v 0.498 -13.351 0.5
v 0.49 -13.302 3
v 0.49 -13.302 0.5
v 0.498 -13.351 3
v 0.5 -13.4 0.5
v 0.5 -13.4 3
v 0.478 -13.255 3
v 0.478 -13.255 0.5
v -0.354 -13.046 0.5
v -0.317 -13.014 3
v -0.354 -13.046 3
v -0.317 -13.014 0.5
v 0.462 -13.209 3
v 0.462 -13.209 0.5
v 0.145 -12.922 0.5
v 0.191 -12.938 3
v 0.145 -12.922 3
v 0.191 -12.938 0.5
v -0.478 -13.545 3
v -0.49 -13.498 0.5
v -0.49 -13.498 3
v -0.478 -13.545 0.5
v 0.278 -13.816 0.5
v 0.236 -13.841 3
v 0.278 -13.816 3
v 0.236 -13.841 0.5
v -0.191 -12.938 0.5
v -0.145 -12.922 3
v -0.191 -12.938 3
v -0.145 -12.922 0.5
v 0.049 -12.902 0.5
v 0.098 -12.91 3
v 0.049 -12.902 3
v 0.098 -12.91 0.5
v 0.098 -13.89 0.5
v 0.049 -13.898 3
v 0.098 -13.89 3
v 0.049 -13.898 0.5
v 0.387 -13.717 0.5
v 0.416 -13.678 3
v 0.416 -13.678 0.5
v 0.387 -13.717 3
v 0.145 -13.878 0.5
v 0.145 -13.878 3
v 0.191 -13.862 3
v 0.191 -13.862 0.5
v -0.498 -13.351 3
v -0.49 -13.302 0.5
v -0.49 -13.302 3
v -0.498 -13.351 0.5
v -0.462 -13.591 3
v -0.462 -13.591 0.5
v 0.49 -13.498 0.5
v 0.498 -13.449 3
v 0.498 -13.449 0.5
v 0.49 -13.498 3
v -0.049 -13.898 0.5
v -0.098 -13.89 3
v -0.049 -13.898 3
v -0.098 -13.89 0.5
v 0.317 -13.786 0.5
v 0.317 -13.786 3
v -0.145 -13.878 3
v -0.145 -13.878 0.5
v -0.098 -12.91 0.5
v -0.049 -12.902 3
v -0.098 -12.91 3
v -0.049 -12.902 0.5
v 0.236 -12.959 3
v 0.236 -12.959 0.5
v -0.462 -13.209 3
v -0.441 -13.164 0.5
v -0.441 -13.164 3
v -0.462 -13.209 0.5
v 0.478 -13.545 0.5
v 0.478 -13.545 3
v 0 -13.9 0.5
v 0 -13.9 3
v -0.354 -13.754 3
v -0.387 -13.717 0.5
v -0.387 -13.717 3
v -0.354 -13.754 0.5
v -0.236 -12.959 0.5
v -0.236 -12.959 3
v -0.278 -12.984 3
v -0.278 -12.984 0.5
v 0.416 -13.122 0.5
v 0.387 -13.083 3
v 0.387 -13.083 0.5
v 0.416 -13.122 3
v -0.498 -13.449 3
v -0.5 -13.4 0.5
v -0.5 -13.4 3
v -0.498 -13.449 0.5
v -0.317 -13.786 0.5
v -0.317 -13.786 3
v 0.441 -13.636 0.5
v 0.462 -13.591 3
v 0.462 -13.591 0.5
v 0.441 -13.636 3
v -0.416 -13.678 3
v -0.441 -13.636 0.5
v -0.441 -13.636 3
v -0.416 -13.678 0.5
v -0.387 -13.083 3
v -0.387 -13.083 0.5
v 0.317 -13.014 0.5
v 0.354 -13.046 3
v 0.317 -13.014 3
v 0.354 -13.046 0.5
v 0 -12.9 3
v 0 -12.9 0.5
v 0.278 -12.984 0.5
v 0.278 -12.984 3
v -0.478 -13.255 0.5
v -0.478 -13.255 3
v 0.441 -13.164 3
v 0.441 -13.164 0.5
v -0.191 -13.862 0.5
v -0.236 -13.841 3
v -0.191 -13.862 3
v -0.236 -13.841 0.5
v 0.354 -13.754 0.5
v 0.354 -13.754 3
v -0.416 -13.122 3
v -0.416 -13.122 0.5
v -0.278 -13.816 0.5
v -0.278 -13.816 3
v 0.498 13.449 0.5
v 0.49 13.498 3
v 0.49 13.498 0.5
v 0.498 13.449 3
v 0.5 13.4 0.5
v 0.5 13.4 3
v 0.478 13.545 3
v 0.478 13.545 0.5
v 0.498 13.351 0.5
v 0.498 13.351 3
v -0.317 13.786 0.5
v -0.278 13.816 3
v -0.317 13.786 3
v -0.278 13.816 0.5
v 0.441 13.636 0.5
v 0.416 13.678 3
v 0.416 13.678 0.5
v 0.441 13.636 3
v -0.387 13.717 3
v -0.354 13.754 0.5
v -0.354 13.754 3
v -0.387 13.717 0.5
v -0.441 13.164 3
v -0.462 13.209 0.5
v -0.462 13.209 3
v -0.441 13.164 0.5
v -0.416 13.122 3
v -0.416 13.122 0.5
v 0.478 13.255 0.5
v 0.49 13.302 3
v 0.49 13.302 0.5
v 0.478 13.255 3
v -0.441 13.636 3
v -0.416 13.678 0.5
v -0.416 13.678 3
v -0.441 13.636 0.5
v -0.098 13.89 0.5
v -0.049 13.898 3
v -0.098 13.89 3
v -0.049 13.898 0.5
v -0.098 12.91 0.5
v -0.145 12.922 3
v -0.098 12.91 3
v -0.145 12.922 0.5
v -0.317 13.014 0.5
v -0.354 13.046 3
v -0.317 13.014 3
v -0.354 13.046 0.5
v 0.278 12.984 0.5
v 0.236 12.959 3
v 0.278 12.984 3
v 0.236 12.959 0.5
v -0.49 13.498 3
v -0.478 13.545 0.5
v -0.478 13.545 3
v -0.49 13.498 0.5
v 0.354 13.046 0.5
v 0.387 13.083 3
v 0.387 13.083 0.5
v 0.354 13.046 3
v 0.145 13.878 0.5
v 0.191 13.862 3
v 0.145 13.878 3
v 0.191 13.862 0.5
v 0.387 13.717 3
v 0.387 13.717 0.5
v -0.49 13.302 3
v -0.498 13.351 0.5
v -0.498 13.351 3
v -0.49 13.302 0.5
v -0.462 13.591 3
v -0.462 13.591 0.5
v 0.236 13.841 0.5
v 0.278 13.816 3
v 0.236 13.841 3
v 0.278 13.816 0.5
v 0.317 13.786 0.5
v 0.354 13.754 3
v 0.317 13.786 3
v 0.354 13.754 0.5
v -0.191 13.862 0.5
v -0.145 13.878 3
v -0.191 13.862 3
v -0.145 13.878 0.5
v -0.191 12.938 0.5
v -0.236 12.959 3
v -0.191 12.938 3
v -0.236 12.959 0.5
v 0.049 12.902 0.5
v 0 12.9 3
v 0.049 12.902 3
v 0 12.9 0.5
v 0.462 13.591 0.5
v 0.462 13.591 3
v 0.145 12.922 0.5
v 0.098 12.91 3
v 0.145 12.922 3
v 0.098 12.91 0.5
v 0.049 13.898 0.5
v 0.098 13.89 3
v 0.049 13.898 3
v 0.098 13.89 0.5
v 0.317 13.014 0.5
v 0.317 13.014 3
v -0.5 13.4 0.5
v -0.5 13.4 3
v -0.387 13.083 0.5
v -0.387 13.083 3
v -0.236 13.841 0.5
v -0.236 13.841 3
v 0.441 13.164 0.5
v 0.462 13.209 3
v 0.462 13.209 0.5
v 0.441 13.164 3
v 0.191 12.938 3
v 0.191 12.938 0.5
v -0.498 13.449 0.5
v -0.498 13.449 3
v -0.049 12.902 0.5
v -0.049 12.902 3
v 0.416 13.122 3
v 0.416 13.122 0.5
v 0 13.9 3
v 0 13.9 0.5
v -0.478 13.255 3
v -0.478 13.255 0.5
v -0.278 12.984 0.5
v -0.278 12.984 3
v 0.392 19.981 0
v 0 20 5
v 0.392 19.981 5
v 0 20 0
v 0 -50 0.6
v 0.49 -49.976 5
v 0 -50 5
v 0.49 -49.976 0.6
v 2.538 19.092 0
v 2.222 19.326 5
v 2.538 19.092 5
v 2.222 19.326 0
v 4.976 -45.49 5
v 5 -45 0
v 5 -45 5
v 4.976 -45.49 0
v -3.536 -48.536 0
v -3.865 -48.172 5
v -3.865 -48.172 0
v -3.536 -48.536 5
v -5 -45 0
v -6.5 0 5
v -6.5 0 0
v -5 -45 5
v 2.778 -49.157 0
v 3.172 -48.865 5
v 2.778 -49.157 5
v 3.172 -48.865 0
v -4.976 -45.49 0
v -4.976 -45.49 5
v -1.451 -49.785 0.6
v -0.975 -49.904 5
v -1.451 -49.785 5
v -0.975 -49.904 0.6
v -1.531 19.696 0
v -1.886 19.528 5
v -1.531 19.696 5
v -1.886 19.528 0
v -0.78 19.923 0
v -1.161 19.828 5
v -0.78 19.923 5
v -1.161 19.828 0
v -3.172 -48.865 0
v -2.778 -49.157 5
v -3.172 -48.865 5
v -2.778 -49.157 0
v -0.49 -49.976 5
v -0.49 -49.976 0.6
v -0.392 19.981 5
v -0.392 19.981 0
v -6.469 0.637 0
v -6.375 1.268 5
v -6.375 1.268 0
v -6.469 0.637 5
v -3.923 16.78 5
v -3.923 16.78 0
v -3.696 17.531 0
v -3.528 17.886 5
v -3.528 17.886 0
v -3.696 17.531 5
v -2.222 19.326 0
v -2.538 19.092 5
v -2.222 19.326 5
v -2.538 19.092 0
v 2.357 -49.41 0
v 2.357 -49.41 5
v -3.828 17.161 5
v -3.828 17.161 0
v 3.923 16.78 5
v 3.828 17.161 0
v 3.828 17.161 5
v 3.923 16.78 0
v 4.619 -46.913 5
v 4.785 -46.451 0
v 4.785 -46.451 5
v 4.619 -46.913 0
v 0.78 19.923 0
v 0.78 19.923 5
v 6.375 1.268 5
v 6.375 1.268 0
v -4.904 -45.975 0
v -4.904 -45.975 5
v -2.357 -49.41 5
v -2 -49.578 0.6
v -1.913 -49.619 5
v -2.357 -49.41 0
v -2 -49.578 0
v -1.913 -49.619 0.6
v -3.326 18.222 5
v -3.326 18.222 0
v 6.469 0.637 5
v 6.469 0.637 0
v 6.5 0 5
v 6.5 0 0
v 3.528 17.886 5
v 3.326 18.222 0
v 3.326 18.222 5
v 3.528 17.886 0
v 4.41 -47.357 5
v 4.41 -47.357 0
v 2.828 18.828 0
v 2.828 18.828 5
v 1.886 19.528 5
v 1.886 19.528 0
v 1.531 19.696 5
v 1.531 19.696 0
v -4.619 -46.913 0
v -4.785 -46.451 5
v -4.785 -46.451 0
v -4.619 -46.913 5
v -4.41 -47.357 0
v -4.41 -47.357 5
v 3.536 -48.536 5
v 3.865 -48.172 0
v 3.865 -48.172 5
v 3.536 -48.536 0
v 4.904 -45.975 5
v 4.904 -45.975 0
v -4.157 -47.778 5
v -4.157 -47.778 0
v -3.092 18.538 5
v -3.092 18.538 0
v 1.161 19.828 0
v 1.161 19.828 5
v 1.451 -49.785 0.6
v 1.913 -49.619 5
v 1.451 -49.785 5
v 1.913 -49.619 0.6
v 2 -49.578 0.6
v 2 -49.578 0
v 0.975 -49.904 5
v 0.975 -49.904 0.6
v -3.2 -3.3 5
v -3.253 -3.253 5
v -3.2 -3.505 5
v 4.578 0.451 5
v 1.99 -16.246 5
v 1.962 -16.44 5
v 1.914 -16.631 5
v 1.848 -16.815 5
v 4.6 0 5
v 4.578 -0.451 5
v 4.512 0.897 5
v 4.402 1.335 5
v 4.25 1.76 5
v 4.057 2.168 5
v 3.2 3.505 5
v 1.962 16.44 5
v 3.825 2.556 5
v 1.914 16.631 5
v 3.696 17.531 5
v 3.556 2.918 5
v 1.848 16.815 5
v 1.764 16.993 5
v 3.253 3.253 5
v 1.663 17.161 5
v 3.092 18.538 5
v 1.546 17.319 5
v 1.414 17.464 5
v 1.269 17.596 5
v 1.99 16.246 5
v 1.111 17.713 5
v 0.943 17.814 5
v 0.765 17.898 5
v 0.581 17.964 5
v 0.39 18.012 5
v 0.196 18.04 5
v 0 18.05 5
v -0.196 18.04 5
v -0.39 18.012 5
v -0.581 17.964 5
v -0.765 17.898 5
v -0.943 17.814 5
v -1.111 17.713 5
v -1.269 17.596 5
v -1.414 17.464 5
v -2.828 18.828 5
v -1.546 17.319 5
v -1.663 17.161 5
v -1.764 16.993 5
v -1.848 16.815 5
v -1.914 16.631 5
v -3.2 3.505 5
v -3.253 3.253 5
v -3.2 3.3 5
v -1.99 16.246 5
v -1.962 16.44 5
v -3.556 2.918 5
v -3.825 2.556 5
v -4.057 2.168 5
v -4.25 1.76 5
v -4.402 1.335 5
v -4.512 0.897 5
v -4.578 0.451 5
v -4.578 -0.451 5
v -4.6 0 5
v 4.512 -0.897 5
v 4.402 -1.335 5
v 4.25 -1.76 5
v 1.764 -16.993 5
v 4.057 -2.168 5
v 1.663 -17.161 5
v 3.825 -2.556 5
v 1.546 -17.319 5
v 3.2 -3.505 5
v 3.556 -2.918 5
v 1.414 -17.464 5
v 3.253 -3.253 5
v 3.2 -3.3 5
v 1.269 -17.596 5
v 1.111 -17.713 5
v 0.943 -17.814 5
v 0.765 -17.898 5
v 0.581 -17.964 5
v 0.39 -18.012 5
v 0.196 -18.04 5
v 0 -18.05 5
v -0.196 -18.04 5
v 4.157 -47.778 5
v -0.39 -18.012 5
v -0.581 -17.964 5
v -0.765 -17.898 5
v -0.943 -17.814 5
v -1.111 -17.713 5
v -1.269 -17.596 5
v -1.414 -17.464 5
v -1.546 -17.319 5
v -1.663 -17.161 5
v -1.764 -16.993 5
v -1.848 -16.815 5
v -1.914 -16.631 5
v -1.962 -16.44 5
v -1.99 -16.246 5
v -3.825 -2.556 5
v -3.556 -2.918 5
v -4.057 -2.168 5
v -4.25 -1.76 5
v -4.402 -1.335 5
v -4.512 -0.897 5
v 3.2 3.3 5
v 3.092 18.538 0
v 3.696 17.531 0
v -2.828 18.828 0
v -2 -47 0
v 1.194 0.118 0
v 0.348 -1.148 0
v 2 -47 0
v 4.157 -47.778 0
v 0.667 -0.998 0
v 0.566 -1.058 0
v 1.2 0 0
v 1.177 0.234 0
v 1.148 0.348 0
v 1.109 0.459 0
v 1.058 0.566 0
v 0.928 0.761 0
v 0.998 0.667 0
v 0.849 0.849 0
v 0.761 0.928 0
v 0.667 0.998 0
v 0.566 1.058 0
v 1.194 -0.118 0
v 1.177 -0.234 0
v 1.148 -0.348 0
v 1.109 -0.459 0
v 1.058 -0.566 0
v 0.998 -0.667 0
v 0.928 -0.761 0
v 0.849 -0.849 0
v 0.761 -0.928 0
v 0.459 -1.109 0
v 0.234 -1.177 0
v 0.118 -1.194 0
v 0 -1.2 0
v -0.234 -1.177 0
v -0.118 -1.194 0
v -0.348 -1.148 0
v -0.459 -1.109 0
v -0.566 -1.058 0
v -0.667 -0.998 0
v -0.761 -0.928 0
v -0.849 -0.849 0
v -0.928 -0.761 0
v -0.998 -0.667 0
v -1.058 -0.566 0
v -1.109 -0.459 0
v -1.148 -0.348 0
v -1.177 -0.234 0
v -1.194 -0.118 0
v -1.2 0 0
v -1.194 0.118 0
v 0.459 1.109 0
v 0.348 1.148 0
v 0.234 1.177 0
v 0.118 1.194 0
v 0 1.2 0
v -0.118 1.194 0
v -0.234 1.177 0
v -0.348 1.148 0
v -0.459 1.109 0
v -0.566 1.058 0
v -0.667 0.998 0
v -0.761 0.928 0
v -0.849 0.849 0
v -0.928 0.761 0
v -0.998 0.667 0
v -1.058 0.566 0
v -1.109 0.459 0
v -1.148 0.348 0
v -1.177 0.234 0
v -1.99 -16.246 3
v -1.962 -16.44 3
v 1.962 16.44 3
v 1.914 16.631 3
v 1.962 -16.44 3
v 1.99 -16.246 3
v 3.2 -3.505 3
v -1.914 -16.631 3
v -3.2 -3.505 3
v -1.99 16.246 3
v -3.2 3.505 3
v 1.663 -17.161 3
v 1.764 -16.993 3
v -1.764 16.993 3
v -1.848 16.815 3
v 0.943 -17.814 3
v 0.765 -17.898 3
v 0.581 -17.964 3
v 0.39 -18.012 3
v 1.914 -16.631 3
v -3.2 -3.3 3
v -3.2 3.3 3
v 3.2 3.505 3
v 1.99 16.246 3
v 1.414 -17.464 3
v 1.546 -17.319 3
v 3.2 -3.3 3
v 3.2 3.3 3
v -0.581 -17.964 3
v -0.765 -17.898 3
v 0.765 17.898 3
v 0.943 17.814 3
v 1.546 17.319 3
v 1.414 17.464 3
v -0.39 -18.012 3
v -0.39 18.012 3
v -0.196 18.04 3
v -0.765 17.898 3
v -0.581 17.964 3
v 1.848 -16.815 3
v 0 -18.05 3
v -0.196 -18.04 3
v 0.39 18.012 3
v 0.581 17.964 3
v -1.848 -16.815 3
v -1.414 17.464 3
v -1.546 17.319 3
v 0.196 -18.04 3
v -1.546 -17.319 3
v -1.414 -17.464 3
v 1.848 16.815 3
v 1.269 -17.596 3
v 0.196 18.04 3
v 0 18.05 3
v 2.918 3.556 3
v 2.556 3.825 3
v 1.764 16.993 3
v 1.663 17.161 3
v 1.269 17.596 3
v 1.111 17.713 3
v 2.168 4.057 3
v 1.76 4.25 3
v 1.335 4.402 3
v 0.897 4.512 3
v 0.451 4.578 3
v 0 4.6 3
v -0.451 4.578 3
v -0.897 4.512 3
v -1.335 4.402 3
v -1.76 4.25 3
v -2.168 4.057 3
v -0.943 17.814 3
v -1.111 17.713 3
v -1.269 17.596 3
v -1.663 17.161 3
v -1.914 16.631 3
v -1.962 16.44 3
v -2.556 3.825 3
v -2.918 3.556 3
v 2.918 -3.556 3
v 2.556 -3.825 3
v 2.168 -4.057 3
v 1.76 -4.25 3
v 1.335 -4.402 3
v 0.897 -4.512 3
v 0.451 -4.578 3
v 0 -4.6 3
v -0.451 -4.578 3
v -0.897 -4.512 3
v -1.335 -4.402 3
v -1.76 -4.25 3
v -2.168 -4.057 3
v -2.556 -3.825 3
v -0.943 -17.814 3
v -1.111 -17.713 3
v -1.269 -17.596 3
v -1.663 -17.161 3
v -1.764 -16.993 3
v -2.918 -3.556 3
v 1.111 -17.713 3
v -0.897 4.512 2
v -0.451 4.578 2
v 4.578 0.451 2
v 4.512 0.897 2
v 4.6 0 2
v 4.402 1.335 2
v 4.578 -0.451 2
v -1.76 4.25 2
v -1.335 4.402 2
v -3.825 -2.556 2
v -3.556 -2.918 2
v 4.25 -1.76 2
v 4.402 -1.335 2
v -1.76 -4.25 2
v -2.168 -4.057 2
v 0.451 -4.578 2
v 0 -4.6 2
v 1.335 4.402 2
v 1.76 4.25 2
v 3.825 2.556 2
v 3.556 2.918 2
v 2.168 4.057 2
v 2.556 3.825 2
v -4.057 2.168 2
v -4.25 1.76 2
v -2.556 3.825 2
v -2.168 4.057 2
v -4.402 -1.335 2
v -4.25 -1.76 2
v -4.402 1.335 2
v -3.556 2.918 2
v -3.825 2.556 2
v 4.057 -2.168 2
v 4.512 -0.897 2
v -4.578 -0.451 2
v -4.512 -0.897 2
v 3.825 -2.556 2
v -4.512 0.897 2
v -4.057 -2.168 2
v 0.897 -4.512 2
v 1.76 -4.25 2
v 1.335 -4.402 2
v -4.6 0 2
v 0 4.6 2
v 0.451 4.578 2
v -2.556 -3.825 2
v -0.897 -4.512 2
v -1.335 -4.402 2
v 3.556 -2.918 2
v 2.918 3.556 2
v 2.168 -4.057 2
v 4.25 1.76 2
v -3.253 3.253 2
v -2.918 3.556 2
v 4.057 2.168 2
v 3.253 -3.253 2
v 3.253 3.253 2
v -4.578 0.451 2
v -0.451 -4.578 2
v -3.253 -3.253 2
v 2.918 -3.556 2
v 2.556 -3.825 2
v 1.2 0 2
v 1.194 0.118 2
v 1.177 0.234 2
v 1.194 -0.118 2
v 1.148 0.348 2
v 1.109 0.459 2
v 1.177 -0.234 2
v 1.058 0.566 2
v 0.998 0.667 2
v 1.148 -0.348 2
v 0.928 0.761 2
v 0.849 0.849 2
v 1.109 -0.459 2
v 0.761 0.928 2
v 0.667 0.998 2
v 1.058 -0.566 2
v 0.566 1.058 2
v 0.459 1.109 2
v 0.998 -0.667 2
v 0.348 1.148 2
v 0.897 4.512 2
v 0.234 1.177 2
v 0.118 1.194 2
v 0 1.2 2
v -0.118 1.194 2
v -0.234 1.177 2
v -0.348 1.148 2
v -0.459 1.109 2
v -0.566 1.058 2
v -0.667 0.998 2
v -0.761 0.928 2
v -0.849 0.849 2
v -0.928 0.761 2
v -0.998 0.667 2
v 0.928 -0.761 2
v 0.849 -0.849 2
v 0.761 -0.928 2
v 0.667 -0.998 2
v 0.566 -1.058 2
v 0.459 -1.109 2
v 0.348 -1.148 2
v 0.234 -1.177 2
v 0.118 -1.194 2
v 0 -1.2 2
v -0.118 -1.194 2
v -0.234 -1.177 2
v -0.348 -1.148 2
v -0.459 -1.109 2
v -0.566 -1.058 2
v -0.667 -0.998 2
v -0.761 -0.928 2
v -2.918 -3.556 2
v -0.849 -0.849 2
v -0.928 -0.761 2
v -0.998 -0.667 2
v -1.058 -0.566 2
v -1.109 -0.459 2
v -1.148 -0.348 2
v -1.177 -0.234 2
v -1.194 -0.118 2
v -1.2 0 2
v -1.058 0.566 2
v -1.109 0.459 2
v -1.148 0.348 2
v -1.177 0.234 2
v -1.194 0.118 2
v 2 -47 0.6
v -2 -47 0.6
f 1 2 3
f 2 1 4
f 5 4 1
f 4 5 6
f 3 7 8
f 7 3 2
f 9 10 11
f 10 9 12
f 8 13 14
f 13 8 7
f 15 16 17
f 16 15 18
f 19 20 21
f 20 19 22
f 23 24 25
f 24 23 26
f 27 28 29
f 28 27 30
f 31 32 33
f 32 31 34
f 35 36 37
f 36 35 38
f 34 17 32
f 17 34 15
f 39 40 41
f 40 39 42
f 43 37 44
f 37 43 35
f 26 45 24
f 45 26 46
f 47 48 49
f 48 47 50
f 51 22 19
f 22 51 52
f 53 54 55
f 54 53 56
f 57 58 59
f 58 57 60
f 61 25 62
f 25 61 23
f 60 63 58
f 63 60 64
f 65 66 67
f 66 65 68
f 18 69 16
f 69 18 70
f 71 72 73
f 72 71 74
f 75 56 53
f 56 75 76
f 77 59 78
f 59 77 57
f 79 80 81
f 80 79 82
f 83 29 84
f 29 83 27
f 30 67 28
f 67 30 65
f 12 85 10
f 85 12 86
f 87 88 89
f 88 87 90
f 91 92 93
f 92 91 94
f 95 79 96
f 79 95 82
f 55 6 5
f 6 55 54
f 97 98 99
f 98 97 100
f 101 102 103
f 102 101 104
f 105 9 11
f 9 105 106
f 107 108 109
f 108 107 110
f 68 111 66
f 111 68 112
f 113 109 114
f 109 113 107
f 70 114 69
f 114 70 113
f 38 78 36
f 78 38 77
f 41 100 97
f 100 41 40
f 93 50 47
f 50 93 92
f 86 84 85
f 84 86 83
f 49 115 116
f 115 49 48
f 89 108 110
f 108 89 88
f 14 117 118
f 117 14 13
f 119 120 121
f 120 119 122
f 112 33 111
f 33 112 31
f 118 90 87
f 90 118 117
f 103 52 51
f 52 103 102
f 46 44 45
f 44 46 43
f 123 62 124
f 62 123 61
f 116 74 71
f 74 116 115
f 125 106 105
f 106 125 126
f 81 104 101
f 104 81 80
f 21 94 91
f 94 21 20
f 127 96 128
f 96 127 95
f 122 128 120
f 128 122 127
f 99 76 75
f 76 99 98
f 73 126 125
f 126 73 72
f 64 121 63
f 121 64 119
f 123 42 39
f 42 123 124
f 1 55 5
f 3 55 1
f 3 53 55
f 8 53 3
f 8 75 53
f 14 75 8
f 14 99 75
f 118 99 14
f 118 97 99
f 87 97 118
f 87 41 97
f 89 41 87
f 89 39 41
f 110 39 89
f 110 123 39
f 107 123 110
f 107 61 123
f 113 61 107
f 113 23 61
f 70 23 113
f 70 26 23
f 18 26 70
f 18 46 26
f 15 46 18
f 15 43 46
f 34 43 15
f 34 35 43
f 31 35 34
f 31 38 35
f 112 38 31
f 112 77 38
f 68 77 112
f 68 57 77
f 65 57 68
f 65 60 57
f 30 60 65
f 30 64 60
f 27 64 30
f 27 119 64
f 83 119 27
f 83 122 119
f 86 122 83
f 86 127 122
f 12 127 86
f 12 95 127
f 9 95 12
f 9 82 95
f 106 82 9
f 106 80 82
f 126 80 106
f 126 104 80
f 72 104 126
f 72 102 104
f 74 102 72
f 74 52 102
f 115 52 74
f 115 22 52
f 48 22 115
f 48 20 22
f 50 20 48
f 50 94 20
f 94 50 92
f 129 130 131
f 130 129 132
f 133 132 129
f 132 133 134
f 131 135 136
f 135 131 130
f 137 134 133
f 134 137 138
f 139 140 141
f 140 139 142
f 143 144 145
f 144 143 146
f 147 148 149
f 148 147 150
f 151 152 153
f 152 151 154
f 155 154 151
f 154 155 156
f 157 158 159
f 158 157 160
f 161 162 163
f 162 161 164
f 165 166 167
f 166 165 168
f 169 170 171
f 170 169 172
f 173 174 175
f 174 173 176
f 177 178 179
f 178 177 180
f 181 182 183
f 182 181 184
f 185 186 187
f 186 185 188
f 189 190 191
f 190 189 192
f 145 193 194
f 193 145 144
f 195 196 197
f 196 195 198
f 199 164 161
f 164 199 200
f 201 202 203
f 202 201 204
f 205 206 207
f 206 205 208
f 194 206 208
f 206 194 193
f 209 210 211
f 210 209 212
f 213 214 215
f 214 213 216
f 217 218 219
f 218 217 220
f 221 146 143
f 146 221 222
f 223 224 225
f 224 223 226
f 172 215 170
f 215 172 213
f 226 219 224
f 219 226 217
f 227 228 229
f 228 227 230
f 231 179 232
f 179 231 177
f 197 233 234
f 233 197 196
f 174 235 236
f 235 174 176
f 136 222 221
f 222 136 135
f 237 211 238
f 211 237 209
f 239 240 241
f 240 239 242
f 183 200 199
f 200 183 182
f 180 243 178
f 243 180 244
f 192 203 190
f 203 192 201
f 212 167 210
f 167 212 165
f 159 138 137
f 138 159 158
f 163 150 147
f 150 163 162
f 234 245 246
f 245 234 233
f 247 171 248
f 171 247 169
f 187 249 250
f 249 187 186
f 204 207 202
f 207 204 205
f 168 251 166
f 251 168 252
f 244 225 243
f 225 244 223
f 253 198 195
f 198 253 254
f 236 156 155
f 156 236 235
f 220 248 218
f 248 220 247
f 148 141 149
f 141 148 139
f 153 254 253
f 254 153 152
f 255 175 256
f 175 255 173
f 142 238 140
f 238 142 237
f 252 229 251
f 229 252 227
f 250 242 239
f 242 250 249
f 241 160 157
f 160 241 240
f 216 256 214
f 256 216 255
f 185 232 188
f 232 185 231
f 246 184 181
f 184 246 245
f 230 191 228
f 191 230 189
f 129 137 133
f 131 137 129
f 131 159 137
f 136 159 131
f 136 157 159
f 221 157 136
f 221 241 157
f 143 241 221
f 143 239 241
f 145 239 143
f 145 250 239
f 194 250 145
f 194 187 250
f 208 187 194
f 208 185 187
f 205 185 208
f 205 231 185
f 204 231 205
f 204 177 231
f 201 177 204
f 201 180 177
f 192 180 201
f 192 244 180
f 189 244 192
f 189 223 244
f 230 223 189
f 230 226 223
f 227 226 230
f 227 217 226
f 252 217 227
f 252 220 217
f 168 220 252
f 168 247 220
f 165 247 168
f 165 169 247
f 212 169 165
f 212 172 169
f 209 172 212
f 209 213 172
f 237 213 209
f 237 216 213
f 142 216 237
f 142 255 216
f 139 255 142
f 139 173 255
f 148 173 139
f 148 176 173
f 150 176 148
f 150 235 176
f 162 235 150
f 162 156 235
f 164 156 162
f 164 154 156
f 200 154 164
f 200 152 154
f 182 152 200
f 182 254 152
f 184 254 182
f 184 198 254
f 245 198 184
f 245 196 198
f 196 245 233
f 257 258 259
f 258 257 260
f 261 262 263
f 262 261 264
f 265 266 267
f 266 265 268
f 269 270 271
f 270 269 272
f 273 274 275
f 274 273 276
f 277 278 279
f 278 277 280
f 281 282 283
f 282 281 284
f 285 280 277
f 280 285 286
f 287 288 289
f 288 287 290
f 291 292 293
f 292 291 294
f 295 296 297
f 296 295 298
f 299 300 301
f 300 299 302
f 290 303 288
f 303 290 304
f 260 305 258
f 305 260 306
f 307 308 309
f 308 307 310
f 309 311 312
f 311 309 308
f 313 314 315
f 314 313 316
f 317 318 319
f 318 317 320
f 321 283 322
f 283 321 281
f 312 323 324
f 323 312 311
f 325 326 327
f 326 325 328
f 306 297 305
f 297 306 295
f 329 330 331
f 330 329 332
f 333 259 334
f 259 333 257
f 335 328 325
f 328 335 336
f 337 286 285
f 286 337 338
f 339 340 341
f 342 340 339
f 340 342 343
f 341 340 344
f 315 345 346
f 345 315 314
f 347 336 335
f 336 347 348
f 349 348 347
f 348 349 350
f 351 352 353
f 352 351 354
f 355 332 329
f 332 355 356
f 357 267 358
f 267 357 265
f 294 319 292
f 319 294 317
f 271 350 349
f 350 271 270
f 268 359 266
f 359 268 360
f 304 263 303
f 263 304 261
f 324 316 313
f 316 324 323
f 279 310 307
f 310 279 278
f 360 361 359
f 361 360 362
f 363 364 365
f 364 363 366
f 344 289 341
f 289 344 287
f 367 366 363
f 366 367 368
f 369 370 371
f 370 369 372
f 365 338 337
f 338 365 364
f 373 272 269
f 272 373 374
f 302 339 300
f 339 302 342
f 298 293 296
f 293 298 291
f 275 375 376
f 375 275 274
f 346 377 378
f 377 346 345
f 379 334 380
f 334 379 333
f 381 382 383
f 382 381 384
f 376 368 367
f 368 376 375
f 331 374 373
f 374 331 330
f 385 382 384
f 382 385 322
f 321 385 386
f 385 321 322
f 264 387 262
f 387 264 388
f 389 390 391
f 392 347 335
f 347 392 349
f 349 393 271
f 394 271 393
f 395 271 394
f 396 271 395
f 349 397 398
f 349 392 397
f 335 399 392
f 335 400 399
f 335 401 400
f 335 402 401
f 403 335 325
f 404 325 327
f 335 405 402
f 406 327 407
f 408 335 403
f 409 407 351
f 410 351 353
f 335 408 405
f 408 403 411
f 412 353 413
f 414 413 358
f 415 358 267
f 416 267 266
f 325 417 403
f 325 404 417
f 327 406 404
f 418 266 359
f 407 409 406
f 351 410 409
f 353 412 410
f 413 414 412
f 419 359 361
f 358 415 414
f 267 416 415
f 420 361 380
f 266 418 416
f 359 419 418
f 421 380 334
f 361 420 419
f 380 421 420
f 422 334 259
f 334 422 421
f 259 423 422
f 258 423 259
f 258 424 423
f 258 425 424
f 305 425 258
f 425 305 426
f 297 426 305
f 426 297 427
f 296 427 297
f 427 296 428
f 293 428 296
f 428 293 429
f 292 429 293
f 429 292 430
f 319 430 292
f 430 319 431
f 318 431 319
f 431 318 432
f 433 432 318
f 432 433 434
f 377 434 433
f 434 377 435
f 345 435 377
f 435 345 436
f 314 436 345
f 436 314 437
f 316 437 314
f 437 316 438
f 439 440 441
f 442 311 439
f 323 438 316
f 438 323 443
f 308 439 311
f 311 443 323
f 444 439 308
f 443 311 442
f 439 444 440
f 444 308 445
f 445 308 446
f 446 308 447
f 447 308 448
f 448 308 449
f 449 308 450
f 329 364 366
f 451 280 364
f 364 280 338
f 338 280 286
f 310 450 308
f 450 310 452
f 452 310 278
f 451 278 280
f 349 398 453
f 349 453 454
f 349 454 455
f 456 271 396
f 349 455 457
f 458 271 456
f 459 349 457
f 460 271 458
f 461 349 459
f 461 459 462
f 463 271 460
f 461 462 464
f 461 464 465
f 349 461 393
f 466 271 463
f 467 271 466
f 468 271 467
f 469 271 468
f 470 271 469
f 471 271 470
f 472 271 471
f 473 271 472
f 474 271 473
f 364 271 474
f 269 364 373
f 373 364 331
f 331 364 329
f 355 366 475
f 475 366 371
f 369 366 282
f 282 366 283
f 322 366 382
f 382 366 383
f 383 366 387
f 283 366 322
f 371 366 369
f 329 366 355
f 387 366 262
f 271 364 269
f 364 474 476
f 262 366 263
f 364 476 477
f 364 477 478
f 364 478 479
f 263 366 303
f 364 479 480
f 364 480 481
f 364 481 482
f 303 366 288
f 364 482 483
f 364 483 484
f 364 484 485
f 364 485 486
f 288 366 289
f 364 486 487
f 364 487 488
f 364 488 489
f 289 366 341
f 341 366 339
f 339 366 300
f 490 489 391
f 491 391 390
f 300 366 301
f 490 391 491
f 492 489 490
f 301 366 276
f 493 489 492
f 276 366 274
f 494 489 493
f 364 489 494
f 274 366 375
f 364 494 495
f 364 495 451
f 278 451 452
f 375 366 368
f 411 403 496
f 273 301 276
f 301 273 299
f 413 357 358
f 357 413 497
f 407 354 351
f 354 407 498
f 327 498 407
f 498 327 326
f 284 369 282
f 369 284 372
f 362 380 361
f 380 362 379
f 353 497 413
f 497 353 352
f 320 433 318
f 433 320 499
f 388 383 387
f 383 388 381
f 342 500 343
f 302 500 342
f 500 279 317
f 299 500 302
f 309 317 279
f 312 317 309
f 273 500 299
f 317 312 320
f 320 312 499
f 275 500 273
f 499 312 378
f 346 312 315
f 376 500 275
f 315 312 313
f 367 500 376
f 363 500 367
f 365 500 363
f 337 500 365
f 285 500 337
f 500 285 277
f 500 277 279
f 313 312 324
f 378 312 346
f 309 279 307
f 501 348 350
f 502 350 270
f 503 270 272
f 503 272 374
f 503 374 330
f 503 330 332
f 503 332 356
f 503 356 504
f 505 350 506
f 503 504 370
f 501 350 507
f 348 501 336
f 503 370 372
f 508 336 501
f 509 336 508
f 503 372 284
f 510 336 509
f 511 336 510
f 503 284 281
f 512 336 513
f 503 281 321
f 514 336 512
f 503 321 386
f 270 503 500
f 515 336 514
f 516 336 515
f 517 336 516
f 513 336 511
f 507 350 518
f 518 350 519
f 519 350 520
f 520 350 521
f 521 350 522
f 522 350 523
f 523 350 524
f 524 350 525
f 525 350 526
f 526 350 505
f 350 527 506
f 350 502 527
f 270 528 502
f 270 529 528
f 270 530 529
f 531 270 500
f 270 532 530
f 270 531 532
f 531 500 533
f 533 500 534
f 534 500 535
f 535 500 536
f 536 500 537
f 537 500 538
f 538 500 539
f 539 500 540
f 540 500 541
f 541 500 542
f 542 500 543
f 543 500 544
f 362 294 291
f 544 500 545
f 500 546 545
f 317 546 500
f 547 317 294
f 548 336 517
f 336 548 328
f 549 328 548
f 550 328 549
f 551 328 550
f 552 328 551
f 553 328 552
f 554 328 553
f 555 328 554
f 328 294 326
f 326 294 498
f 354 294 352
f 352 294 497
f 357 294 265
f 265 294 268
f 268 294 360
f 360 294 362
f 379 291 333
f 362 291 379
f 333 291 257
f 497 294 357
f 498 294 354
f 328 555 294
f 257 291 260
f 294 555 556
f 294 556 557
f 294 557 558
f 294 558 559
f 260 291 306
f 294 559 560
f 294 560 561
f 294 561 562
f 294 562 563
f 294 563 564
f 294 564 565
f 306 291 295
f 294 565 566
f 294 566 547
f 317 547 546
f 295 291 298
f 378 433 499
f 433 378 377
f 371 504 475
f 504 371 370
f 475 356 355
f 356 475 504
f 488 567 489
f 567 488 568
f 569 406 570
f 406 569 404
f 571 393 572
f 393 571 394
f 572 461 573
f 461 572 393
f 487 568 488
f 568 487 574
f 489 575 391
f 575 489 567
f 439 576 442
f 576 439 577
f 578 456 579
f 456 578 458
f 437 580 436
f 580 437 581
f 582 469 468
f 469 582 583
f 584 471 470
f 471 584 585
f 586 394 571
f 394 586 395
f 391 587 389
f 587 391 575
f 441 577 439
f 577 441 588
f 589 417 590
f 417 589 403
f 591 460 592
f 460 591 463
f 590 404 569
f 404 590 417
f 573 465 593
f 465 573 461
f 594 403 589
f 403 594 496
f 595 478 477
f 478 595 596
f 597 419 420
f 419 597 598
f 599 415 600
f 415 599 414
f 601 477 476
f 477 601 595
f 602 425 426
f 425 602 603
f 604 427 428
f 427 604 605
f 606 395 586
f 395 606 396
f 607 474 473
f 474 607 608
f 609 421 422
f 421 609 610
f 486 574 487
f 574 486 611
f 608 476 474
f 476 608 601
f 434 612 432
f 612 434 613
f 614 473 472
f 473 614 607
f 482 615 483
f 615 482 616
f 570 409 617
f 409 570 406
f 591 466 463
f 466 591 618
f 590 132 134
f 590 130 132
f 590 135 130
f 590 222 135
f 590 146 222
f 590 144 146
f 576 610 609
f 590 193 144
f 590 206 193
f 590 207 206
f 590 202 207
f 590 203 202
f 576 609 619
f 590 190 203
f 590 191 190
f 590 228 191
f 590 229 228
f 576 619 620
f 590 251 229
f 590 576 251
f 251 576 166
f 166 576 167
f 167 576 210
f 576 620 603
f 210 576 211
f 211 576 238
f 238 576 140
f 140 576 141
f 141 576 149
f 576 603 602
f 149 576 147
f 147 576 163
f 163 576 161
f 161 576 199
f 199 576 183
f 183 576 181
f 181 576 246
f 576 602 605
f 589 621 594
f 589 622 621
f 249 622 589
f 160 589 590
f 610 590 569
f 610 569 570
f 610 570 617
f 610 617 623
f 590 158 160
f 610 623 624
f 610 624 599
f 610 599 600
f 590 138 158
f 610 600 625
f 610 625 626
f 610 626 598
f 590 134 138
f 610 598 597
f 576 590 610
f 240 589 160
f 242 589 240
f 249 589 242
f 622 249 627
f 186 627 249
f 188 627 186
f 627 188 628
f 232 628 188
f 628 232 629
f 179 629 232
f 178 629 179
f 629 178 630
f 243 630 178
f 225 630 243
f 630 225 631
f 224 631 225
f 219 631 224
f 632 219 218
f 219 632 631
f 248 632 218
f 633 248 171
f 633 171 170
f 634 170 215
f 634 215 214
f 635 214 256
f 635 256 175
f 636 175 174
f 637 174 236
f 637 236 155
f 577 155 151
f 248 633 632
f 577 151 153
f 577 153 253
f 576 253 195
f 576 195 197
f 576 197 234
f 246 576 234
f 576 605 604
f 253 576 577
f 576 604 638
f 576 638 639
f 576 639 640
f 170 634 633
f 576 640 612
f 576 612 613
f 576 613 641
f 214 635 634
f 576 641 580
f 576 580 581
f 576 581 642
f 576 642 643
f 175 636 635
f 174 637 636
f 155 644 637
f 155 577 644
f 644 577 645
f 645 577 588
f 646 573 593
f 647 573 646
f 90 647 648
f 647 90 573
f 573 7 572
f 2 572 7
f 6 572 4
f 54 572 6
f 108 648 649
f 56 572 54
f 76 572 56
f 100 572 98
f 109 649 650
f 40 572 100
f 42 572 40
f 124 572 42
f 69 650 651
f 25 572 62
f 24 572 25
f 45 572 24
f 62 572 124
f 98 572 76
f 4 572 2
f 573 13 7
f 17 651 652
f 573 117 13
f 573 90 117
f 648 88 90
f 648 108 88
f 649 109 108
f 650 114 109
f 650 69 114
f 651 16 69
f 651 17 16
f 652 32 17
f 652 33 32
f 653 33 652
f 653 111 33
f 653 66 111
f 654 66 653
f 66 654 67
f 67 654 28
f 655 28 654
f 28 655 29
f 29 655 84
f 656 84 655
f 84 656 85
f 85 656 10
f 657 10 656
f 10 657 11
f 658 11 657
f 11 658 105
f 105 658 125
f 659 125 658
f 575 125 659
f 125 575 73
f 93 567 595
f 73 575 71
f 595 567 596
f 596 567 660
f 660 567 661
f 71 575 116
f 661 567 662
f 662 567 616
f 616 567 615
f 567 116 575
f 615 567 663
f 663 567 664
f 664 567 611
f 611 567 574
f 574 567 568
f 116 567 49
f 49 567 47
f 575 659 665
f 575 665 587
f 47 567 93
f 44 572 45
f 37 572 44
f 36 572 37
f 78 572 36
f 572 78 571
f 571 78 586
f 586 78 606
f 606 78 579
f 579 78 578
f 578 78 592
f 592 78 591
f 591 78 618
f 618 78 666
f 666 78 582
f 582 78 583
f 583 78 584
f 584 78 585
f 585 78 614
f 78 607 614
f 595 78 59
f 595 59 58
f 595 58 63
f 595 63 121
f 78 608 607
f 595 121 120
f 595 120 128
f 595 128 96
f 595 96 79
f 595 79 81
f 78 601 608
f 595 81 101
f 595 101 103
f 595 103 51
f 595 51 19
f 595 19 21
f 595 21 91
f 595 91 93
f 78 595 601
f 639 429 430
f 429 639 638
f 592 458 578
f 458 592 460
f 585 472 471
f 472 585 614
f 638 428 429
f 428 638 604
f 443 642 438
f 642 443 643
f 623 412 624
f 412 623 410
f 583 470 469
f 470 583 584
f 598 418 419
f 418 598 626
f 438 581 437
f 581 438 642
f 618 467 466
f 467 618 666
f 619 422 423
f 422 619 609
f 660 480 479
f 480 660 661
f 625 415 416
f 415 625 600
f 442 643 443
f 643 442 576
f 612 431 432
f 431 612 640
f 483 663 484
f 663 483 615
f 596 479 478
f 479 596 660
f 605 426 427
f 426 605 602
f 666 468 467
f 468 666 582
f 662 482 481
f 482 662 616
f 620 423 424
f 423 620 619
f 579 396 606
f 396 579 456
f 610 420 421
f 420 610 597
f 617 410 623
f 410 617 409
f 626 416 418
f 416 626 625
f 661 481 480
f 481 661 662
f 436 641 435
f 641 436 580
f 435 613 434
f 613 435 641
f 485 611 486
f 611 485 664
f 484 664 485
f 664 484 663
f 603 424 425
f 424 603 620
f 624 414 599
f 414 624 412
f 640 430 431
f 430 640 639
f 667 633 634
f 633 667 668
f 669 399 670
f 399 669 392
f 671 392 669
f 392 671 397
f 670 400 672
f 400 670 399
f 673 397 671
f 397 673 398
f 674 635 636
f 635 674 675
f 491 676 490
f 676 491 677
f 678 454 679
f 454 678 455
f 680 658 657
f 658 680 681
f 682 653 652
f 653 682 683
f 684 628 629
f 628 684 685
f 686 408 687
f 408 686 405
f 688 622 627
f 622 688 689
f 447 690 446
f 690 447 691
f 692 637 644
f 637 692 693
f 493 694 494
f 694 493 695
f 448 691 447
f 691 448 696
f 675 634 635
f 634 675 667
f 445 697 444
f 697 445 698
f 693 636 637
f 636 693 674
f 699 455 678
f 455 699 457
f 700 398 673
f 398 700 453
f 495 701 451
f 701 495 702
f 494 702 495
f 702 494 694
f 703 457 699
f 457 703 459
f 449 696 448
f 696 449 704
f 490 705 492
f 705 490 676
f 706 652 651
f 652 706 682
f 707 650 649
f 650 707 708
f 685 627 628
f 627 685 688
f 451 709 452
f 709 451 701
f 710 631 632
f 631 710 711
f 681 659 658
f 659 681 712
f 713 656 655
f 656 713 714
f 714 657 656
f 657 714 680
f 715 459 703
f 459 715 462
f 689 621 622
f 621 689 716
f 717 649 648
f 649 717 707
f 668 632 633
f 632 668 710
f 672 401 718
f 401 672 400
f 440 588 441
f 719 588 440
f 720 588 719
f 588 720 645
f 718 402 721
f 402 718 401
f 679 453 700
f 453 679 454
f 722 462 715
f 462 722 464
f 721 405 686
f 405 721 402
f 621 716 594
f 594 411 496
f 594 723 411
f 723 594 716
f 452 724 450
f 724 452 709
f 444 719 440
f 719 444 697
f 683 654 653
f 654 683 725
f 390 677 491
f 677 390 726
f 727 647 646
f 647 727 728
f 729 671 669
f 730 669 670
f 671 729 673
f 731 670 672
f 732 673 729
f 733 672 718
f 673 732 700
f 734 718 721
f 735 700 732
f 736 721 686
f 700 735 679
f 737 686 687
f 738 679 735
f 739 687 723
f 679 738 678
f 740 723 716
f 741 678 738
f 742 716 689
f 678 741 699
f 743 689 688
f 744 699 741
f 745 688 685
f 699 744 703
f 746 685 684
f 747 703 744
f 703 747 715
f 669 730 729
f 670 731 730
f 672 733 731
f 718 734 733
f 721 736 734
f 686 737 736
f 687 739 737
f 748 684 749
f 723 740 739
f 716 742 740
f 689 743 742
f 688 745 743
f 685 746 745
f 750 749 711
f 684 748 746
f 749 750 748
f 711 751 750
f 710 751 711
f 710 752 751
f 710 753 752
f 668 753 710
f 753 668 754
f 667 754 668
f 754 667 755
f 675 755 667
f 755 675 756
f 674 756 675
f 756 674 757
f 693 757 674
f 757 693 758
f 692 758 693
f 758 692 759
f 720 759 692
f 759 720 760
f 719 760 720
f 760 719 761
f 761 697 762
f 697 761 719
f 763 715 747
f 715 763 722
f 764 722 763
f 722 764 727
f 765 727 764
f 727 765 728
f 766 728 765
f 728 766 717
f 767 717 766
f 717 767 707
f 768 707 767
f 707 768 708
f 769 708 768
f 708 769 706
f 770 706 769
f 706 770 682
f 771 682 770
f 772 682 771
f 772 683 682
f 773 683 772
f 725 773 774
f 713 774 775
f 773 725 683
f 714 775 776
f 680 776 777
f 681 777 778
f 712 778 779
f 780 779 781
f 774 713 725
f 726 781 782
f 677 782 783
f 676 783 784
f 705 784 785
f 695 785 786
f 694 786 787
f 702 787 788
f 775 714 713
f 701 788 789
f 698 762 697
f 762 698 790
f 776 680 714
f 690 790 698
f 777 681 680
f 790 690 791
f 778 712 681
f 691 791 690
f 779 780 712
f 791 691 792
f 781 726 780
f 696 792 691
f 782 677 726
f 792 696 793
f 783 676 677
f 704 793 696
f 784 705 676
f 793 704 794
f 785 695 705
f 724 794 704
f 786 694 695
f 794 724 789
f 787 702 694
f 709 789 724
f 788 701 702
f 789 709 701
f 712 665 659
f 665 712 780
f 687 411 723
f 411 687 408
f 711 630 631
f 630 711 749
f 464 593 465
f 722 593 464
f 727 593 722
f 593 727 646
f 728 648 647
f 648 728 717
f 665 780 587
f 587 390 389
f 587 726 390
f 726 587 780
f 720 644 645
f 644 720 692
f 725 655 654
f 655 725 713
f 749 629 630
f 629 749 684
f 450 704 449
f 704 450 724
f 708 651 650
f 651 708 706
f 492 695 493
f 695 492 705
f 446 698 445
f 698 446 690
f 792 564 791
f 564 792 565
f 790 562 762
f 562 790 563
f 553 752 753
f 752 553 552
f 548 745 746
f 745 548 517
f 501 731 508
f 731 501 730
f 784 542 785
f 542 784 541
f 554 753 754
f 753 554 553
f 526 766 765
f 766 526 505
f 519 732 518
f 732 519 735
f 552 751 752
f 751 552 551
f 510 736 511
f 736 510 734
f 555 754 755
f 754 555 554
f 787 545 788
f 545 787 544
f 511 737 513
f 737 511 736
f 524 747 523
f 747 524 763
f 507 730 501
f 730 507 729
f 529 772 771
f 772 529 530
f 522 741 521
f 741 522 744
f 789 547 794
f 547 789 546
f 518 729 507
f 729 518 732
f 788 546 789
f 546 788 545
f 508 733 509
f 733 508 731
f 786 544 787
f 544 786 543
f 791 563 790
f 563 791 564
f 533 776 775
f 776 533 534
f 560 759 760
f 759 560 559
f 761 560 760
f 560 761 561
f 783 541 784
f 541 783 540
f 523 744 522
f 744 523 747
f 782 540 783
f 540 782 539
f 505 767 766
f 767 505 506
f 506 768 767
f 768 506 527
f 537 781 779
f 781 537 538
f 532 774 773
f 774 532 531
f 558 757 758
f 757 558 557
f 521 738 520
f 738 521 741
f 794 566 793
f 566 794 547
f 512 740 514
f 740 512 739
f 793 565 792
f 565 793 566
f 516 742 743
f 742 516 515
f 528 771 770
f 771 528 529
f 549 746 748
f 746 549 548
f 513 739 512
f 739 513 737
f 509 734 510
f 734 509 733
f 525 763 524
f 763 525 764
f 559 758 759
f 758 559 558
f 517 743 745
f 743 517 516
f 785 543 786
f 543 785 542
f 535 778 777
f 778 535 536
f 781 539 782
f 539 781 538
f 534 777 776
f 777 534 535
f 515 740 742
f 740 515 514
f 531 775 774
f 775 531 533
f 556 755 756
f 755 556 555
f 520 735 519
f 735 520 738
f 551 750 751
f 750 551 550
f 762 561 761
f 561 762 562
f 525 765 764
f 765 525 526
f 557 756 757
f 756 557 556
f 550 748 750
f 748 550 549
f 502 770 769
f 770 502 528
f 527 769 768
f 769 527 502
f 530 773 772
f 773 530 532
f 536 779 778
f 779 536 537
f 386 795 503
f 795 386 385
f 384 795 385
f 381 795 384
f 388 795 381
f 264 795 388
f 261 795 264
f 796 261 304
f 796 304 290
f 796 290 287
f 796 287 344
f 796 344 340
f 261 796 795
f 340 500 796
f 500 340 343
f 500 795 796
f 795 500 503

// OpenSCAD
// Leg V2: shaped around the owner's measured double-arm horn. Units mm. OpenSCAD 2021.01.
// Horn measured 2026-11-27 from grid-sheet photos (about +/-0.2mm), not calipers:
//   overall length 35.7, hub boss 7.2 dia x 2.0 tall (spline side),
//   raised disc on the screw side about 8.7 dia x 1.0, arm 2.0 thick,
//   arm 6.0 wide beside the hub tapering to 3.6 at the rounded tip,
//   arm holes about 1.4 dia at 5.9, 8.4, 10.9, 13.4, 15.9 from centre.
// The horn's SCREW side goes into the pocket; the spline boss points at the servo.
// An M2 x 6 screw through the leg and horn into the servo shaft clamps everything.
// Print pocket side UP. No supports.
$fn=64;

horn_len=35.7; arm_t=2.0; arm_w_hub=6.0; arm_w_tip=3.6; hub_x=3.5;
disc_d=8.7; disc_h=1.0;
pilot_r=13.4;     // 4th hole from the centre, both arms
clr=0.4;          // total extra width/length in the pocket (0.2 each side)

leg_t=5; hip_d=13; foot_d=10; leg_len=45; tail_d=8; tail_len=16;
pocket=arm_t;                 // arm sits flush with the leg face
recess=pocket+disc_h;         // deeper round recess for the raised disc
floor_t=leg_t-recess;         // plastic under the hub that the screw clamps
tip_c=horn_len/2-arm_w_tip/2;

module leg_outline() {
  hull() { circle(d=hip_d); translate([0,-leg_len]) circle(d=foot_d); }
  hull() { circle(d=hip_d); translate([0,tail_len]) circle(d=tail_d); }
}
module arm_outline() {
  hull() for(s=[-1,1]) {
    translate([0,s*hub_x]) square([arm_w_hub+clr,.01],center=true);
    translate([0,s*tip_c]) circle(d=arm_w_tip+clr);
  }
}
module leg() {
  difference() {
    linear_extrude(leg_t) leg_outline();
    translate([0,0,leg_t-pocket]) linear_extrude(pocket+.1) arm_outline();
    translate([0,0,leg_t-recess]) cylinder(d=disc_d+0.5,h=recess+.1);
    translate([0,0,-.1]) cylinder(d=2.4,h=leg_t+.2);              // M2 shaft screw
    for(s=[-1,1]) translate([0,s*pilot_r,leg_t-pocket-2.5]) cylinder(d=1.0,h=2.6); // optional tiny horn screws
    translate([-2,-leg_len-foot_d/2-1,-.1]) cube([4,4,0.7]);      // toe mark on the bed face
  }
}
leg();

assert(floor_t>=2,"Plastic under the hub for the clamp screw");
assert(tail_len+tail_d/2-(horn_len+clr)/2>=1.5,"Wall beyond the upper horn tip");
assert((hip_d-(disc_d+0.5))/2>=1.8,"Side wall around the hub recess");
assert(leg_t-pocket-2.5>=0.4,"Pilot holes stay inside the leg");
